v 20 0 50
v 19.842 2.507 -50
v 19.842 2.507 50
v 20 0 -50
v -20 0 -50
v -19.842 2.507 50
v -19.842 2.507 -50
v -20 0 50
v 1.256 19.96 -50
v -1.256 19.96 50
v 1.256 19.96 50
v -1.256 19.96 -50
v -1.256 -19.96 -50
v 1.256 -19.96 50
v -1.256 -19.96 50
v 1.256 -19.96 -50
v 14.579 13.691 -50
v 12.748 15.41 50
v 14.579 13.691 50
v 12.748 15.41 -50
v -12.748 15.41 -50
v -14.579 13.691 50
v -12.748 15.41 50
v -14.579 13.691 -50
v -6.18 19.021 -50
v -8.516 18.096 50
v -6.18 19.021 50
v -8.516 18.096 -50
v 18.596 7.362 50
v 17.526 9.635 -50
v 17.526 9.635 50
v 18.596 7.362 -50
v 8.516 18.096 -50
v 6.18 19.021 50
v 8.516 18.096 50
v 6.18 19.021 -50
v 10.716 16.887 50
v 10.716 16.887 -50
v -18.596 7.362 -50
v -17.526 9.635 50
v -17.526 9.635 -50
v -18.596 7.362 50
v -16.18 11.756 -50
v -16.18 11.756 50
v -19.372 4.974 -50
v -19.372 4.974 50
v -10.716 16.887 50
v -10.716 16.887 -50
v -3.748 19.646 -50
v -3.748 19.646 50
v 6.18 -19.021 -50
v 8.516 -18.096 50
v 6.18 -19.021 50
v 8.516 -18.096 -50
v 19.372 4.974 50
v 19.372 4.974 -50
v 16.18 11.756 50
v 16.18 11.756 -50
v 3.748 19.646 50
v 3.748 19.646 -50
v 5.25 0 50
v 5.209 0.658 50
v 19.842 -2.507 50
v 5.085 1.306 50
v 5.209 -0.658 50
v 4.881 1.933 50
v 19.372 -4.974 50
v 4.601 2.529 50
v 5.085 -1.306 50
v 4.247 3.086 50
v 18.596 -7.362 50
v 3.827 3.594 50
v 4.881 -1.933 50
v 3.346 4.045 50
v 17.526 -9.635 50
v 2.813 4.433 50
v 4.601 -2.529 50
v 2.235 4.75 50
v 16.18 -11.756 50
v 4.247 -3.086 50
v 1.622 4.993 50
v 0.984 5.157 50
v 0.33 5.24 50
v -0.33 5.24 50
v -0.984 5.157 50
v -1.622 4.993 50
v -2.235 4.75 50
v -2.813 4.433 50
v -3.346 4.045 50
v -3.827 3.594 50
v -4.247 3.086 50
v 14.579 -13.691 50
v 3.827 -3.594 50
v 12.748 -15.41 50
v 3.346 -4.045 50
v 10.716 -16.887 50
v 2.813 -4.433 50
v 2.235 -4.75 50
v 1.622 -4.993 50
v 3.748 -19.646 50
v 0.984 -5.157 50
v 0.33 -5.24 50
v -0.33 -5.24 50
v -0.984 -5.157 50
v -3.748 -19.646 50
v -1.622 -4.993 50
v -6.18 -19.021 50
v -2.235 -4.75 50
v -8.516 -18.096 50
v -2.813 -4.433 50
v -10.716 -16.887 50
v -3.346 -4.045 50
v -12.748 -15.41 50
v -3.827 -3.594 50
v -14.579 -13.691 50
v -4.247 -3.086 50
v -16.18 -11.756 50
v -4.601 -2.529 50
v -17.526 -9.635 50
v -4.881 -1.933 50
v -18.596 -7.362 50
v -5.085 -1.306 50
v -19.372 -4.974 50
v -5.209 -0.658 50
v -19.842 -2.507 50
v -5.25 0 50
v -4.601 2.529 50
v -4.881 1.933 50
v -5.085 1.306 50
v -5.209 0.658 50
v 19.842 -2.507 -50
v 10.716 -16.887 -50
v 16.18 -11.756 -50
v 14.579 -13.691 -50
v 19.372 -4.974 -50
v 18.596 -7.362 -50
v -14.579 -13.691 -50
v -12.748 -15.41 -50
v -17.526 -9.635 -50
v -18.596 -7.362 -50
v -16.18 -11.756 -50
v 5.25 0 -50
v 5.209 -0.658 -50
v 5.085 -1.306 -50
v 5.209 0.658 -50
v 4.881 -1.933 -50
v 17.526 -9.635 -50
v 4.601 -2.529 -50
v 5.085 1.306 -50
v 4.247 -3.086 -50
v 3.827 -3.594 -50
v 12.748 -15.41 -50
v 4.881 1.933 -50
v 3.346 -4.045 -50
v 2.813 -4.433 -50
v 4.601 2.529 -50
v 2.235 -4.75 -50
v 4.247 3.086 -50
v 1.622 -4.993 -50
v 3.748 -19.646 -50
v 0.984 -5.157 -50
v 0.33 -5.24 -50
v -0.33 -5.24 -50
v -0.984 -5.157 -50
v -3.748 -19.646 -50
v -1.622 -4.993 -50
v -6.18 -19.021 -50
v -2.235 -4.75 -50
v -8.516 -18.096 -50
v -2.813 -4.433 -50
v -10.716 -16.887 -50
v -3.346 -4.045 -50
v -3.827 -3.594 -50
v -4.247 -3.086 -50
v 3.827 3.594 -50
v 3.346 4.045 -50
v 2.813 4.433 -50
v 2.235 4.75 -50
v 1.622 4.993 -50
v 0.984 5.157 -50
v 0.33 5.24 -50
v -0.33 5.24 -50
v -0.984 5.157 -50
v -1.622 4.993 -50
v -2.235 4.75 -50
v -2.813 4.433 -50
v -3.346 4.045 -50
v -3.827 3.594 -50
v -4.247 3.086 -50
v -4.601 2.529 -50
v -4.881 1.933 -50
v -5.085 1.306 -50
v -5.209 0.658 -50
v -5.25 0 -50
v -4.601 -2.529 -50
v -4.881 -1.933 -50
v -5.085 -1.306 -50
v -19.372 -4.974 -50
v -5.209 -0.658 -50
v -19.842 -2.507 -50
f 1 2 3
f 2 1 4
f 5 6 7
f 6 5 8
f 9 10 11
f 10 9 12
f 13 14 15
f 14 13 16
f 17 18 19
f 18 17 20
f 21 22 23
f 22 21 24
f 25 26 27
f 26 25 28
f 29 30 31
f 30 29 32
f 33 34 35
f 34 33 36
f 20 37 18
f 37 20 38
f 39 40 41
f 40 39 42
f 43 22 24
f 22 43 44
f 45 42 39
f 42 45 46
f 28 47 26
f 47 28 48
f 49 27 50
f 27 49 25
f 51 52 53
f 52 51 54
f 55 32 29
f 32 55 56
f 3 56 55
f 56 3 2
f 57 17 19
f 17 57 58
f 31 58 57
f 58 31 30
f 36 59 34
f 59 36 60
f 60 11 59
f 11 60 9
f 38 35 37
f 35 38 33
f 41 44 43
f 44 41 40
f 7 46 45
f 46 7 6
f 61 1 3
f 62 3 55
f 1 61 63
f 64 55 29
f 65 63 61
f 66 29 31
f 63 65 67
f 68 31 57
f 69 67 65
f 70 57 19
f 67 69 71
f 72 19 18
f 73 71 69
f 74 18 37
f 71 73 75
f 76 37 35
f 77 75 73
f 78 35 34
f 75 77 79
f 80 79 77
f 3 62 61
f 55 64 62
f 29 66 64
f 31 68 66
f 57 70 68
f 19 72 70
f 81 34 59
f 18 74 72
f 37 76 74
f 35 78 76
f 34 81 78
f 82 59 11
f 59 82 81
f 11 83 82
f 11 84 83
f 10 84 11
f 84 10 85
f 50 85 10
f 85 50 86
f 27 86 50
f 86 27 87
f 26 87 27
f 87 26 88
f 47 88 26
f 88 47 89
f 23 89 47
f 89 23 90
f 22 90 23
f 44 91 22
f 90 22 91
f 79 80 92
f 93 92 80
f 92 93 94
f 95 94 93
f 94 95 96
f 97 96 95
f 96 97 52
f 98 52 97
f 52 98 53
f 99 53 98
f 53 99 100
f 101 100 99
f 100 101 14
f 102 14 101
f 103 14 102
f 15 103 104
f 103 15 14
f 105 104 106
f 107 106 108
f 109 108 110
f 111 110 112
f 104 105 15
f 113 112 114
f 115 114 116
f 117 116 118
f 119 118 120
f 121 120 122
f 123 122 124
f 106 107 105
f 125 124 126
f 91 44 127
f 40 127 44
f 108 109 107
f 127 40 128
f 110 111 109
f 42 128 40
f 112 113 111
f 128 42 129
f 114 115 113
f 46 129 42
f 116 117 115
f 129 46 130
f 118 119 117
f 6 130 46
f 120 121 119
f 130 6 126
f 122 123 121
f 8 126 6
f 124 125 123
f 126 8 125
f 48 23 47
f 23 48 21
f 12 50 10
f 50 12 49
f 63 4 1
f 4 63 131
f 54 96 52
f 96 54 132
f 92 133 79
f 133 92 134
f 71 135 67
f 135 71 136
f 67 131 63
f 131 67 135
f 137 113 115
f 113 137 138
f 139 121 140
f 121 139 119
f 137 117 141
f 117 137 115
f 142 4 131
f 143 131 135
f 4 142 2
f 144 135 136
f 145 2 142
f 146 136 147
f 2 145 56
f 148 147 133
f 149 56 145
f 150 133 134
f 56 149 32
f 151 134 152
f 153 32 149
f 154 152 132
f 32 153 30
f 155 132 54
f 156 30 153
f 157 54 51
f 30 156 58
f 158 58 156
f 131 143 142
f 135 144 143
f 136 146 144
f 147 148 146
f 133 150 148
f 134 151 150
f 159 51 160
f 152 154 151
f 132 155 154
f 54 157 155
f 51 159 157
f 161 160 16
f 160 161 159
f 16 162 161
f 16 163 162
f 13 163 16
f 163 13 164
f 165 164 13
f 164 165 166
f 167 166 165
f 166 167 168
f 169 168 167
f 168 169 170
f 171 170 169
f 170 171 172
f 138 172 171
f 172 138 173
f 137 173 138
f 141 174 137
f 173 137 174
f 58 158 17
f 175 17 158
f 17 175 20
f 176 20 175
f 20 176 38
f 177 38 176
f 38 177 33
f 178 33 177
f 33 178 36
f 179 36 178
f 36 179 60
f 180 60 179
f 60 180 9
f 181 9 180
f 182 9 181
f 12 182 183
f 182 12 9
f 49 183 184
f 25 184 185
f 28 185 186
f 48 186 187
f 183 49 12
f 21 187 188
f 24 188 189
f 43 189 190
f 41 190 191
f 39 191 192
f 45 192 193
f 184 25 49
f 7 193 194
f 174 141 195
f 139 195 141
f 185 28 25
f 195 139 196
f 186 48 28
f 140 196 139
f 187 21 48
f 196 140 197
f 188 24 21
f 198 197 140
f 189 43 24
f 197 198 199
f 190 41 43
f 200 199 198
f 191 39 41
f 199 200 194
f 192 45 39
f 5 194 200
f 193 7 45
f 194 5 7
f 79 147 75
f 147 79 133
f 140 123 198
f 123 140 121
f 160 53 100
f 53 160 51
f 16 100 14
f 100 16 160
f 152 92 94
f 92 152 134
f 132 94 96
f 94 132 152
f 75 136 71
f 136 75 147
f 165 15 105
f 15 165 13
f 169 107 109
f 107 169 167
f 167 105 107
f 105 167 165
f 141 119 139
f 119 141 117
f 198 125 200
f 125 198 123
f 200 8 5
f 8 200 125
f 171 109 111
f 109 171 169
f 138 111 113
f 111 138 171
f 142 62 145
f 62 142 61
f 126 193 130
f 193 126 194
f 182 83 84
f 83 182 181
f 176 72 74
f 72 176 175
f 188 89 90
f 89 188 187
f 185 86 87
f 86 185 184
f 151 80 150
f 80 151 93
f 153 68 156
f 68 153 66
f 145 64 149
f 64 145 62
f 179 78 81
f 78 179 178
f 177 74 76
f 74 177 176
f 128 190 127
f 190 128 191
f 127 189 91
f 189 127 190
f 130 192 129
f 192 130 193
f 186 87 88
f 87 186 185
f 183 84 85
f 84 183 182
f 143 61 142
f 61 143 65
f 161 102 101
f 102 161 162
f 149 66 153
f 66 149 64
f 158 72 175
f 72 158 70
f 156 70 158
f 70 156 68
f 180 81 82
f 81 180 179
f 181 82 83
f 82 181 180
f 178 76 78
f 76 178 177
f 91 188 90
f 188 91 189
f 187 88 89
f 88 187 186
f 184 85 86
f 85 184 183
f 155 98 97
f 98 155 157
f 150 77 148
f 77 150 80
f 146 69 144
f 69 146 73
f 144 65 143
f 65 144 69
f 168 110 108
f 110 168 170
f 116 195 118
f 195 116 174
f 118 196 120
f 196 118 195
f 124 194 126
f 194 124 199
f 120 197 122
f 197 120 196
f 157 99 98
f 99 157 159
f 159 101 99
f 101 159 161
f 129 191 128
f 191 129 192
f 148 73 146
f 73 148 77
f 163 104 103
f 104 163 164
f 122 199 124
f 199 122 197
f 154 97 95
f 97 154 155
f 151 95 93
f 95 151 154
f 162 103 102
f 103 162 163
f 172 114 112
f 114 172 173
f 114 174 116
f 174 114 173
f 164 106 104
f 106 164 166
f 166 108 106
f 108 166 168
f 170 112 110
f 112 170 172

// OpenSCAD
$fn = 50;


difference() {
	union() {
		translate(v = [0, 0, -50.0000000000]) {
			cylinder(h = 100, r = 20.0000000000);
		}
	}
	union() {
		translate(v = [0, 0, -100.0000000000]) {
			cylinder(h = 200, r = 5.2500000000);
		}
	}
}
